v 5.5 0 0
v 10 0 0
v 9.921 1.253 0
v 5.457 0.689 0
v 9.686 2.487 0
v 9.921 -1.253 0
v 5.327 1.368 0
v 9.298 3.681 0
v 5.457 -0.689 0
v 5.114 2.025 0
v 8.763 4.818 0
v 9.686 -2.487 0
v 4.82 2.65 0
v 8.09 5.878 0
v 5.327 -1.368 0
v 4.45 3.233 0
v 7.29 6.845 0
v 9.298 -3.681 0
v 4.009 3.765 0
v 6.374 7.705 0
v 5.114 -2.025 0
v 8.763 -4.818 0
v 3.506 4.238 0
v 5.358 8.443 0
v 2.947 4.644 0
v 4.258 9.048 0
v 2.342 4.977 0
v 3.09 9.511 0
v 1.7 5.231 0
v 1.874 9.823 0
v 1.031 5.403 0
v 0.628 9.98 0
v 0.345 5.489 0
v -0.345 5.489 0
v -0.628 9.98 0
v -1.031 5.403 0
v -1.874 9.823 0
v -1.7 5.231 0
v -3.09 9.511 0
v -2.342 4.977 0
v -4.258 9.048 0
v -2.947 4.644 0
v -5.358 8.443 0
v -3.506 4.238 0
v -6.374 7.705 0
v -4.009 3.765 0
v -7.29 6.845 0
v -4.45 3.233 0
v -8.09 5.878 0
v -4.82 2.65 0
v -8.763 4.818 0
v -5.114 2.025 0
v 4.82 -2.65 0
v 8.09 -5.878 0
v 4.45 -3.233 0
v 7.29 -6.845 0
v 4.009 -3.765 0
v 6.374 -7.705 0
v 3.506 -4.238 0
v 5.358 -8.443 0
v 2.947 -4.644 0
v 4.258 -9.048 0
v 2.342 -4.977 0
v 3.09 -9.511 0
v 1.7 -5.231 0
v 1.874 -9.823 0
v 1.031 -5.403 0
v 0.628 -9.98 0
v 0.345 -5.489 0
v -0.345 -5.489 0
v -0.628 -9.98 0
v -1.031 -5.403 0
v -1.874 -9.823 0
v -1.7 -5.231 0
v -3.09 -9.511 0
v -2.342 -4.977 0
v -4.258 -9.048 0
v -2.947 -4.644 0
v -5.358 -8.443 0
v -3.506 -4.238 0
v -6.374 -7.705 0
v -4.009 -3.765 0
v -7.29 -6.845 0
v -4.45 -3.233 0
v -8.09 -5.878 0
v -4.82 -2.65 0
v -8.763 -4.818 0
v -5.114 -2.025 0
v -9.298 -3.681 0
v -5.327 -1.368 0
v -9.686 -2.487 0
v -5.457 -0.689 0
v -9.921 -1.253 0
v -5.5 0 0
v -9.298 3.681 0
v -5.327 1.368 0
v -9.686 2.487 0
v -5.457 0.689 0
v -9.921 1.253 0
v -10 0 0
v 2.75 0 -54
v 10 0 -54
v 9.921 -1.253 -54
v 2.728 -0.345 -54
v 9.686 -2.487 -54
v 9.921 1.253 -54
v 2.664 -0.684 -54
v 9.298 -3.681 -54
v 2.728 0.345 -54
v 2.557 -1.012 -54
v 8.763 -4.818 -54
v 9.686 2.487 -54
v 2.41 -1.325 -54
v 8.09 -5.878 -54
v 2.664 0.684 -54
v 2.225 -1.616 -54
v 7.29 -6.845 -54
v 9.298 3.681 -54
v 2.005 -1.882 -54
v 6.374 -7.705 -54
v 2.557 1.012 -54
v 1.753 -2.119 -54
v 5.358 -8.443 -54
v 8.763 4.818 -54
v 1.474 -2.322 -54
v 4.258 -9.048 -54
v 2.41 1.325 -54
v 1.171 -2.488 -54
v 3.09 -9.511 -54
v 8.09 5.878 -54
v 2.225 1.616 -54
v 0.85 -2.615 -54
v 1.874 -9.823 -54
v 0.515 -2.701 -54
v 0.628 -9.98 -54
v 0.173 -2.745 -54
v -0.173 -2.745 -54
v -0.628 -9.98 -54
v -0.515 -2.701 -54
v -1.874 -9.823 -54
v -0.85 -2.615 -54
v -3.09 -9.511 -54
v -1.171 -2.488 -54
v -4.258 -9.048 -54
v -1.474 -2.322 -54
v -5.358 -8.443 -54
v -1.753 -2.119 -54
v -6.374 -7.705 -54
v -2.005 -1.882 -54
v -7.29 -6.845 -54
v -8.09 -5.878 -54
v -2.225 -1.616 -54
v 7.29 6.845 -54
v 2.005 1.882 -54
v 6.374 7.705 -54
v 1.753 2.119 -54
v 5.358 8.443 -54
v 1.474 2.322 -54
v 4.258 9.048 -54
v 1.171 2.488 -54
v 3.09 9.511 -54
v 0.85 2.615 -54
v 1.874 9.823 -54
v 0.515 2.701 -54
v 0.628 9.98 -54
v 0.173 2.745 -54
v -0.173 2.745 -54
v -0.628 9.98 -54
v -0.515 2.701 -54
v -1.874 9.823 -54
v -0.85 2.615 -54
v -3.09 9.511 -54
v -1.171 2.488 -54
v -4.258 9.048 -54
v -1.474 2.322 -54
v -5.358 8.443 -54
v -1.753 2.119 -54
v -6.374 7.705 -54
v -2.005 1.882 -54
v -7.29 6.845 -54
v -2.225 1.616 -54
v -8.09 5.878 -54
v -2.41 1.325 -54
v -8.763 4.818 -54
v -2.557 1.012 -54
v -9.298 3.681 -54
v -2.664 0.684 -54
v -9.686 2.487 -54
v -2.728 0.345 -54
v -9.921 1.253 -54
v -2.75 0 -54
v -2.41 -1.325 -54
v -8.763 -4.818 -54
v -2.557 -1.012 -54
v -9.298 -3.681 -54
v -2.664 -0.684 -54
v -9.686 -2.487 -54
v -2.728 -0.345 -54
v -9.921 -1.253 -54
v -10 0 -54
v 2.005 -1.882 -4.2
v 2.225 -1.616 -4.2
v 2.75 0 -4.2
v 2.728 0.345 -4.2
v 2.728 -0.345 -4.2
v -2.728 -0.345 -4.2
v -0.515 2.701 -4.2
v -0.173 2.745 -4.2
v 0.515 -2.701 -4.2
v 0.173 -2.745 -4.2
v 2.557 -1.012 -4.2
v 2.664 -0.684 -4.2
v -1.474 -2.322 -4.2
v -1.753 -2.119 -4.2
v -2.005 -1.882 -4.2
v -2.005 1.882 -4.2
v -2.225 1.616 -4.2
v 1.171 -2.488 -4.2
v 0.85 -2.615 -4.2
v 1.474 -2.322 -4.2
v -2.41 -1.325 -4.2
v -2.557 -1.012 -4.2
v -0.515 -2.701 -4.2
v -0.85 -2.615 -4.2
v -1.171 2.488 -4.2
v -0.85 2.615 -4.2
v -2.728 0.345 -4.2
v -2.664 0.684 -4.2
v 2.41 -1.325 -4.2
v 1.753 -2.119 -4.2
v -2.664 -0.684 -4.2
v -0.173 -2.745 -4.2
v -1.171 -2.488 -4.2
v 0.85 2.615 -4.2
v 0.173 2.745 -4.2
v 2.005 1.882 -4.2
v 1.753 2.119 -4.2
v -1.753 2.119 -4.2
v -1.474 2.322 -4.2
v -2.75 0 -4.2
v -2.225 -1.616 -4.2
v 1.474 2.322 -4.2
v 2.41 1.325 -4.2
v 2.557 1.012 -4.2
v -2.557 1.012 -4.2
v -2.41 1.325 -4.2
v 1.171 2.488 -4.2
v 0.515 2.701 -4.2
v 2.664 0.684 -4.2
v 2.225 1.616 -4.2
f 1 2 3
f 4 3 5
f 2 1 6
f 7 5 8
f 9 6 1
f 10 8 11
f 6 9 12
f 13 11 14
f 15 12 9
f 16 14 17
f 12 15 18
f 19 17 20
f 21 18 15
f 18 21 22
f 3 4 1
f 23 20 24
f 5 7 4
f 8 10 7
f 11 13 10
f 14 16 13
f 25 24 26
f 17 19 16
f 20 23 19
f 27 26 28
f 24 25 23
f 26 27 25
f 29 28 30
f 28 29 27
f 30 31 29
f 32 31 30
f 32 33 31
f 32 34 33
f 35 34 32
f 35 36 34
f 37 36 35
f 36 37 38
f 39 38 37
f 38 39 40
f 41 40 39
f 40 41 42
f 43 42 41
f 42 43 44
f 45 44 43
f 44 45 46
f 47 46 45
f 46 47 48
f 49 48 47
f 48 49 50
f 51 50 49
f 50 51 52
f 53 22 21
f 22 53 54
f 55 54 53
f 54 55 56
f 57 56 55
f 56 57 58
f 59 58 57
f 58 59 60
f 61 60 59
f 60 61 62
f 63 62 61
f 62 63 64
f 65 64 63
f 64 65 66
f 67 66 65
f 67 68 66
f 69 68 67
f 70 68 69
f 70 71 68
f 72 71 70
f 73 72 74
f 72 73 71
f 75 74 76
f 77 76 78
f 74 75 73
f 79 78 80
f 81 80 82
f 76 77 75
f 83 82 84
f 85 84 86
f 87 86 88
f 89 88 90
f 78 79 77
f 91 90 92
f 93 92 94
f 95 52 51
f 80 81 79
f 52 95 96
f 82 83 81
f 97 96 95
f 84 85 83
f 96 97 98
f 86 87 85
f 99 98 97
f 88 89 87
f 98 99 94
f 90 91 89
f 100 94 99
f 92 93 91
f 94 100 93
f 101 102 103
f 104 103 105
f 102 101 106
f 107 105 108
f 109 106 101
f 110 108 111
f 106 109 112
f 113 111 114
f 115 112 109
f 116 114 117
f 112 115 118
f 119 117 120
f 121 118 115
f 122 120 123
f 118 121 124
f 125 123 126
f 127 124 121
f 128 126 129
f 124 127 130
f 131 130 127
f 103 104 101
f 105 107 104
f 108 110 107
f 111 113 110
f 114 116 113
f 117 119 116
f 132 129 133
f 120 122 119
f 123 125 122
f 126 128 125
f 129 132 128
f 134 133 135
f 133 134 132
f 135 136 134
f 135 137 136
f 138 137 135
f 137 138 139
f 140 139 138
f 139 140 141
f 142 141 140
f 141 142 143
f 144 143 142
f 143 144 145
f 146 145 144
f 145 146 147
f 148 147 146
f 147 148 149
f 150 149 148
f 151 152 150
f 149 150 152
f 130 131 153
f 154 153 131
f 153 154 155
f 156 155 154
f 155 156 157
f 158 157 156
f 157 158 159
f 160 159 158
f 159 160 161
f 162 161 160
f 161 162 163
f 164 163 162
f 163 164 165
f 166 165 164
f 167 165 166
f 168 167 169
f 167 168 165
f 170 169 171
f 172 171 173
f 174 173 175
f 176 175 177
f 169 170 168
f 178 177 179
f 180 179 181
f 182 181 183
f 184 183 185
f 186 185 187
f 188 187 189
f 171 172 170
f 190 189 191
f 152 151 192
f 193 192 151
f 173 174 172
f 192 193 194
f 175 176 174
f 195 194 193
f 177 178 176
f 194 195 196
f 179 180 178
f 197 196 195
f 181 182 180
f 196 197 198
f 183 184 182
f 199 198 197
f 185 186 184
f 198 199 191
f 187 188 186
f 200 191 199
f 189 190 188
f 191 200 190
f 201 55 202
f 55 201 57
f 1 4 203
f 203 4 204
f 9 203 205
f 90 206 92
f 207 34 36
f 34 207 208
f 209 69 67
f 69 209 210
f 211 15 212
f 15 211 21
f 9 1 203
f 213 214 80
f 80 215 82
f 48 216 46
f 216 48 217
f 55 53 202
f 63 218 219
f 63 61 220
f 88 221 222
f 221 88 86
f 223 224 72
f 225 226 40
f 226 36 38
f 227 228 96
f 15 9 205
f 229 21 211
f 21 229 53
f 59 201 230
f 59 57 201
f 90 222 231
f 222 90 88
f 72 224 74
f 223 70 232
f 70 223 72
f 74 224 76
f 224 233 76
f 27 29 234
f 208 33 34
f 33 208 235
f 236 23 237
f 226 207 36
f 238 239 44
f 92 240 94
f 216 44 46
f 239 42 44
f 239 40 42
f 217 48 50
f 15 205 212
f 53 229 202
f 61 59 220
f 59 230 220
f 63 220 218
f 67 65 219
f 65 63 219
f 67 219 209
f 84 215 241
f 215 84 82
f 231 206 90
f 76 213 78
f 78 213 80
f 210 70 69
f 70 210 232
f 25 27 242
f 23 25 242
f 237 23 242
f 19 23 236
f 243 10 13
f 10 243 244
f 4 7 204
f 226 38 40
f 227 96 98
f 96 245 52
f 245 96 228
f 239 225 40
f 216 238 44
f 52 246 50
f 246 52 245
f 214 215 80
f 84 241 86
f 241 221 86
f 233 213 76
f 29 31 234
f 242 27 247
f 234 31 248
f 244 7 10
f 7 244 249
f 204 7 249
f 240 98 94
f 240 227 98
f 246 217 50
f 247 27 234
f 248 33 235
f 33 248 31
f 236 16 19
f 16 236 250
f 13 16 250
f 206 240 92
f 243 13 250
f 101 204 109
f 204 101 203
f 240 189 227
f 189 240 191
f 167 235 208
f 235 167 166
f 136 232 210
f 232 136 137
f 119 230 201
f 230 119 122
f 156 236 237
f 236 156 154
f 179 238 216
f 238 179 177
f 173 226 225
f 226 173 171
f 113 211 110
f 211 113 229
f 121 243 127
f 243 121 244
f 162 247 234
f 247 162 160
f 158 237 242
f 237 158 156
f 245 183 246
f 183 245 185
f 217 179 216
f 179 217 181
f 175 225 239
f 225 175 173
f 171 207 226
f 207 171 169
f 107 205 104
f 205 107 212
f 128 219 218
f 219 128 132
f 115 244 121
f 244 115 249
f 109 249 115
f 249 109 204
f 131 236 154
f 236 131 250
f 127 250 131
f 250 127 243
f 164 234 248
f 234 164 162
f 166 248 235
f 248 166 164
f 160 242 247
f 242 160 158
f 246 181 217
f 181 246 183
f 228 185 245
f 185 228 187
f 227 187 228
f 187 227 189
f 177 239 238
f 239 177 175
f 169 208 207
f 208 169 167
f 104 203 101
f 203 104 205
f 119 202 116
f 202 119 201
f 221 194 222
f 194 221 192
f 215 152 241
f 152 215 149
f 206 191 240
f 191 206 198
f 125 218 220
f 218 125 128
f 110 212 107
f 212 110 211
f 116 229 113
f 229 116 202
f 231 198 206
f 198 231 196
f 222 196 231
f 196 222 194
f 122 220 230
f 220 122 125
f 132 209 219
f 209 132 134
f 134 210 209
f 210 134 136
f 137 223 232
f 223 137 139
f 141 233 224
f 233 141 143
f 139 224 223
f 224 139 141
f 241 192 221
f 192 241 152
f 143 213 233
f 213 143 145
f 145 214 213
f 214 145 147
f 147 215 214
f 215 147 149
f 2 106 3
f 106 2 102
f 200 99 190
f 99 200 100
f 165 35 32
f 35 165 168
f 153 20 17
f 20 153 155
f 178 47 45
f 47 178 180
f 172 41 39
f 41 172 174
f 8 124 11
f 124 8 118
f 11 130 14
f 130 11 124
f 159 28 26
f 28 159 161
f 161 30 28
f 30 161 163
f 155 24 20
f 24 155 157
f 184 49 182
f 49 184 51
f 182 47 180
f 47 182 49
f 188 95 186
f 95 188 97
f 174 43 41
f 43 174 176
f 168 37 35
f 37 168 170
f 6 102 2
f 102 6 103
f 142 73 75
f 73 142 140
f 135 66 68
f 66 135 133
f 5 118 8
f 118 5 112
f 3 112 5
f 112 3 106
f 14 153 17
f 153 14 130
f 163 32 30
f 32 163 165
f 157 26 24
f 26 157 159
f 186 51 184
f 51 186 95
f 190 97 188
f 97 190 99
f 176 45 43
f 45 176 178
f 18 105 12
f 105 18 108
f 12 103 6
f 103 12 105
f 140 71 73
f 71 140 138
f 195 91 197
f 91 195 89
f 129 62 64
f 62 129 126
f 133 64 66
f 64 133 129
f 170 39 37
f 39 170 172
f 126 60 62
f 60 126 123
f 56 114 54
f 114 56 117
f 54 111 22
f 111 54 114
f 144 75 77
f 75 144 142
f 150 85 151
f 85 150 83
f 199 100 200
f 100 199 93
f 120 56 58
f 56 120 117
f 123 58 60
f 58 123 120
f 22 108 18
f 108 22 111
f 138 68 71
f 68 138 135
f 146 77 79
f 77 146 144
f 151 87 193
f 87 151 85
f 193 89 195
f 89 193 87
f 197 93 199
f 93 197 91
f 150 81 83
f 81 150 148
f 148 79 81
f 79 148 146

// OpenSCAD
$fn = 50;


difference() {
	union() {
		translate(v = [0, 0, -54.0000000000]) {
			cylinder(h = 54, r = 10.0000000000);
		}
	}
	union() {
		translate(v = [0, 0, 0]) {
			rotate(a = [0, 0, 0]) {
				difference() {
					union() {
						#translate(v = [0, 0, -54.0000000000]) {
							cylinder(h = 54, r = 2.2500000000);
						}
						#translate(v = [0, 0, -4.2000000000]) {
							cylinder(h = 4.2000000000, r = 10.0000000000, r1 = 2.7500000000, r2 = 5.5000000000);
						}
						#translate(v = [0, 0, -54.0000000000]) {
							cylinder(h = 54, r = 2.7500000000);
						}
						#translate(v = [0, 0, -54.0000000000]) {
							cylinder(h = 54, r = 2.2500000000);
						}
					}
					union();
				}
			}
		}
	}
}
